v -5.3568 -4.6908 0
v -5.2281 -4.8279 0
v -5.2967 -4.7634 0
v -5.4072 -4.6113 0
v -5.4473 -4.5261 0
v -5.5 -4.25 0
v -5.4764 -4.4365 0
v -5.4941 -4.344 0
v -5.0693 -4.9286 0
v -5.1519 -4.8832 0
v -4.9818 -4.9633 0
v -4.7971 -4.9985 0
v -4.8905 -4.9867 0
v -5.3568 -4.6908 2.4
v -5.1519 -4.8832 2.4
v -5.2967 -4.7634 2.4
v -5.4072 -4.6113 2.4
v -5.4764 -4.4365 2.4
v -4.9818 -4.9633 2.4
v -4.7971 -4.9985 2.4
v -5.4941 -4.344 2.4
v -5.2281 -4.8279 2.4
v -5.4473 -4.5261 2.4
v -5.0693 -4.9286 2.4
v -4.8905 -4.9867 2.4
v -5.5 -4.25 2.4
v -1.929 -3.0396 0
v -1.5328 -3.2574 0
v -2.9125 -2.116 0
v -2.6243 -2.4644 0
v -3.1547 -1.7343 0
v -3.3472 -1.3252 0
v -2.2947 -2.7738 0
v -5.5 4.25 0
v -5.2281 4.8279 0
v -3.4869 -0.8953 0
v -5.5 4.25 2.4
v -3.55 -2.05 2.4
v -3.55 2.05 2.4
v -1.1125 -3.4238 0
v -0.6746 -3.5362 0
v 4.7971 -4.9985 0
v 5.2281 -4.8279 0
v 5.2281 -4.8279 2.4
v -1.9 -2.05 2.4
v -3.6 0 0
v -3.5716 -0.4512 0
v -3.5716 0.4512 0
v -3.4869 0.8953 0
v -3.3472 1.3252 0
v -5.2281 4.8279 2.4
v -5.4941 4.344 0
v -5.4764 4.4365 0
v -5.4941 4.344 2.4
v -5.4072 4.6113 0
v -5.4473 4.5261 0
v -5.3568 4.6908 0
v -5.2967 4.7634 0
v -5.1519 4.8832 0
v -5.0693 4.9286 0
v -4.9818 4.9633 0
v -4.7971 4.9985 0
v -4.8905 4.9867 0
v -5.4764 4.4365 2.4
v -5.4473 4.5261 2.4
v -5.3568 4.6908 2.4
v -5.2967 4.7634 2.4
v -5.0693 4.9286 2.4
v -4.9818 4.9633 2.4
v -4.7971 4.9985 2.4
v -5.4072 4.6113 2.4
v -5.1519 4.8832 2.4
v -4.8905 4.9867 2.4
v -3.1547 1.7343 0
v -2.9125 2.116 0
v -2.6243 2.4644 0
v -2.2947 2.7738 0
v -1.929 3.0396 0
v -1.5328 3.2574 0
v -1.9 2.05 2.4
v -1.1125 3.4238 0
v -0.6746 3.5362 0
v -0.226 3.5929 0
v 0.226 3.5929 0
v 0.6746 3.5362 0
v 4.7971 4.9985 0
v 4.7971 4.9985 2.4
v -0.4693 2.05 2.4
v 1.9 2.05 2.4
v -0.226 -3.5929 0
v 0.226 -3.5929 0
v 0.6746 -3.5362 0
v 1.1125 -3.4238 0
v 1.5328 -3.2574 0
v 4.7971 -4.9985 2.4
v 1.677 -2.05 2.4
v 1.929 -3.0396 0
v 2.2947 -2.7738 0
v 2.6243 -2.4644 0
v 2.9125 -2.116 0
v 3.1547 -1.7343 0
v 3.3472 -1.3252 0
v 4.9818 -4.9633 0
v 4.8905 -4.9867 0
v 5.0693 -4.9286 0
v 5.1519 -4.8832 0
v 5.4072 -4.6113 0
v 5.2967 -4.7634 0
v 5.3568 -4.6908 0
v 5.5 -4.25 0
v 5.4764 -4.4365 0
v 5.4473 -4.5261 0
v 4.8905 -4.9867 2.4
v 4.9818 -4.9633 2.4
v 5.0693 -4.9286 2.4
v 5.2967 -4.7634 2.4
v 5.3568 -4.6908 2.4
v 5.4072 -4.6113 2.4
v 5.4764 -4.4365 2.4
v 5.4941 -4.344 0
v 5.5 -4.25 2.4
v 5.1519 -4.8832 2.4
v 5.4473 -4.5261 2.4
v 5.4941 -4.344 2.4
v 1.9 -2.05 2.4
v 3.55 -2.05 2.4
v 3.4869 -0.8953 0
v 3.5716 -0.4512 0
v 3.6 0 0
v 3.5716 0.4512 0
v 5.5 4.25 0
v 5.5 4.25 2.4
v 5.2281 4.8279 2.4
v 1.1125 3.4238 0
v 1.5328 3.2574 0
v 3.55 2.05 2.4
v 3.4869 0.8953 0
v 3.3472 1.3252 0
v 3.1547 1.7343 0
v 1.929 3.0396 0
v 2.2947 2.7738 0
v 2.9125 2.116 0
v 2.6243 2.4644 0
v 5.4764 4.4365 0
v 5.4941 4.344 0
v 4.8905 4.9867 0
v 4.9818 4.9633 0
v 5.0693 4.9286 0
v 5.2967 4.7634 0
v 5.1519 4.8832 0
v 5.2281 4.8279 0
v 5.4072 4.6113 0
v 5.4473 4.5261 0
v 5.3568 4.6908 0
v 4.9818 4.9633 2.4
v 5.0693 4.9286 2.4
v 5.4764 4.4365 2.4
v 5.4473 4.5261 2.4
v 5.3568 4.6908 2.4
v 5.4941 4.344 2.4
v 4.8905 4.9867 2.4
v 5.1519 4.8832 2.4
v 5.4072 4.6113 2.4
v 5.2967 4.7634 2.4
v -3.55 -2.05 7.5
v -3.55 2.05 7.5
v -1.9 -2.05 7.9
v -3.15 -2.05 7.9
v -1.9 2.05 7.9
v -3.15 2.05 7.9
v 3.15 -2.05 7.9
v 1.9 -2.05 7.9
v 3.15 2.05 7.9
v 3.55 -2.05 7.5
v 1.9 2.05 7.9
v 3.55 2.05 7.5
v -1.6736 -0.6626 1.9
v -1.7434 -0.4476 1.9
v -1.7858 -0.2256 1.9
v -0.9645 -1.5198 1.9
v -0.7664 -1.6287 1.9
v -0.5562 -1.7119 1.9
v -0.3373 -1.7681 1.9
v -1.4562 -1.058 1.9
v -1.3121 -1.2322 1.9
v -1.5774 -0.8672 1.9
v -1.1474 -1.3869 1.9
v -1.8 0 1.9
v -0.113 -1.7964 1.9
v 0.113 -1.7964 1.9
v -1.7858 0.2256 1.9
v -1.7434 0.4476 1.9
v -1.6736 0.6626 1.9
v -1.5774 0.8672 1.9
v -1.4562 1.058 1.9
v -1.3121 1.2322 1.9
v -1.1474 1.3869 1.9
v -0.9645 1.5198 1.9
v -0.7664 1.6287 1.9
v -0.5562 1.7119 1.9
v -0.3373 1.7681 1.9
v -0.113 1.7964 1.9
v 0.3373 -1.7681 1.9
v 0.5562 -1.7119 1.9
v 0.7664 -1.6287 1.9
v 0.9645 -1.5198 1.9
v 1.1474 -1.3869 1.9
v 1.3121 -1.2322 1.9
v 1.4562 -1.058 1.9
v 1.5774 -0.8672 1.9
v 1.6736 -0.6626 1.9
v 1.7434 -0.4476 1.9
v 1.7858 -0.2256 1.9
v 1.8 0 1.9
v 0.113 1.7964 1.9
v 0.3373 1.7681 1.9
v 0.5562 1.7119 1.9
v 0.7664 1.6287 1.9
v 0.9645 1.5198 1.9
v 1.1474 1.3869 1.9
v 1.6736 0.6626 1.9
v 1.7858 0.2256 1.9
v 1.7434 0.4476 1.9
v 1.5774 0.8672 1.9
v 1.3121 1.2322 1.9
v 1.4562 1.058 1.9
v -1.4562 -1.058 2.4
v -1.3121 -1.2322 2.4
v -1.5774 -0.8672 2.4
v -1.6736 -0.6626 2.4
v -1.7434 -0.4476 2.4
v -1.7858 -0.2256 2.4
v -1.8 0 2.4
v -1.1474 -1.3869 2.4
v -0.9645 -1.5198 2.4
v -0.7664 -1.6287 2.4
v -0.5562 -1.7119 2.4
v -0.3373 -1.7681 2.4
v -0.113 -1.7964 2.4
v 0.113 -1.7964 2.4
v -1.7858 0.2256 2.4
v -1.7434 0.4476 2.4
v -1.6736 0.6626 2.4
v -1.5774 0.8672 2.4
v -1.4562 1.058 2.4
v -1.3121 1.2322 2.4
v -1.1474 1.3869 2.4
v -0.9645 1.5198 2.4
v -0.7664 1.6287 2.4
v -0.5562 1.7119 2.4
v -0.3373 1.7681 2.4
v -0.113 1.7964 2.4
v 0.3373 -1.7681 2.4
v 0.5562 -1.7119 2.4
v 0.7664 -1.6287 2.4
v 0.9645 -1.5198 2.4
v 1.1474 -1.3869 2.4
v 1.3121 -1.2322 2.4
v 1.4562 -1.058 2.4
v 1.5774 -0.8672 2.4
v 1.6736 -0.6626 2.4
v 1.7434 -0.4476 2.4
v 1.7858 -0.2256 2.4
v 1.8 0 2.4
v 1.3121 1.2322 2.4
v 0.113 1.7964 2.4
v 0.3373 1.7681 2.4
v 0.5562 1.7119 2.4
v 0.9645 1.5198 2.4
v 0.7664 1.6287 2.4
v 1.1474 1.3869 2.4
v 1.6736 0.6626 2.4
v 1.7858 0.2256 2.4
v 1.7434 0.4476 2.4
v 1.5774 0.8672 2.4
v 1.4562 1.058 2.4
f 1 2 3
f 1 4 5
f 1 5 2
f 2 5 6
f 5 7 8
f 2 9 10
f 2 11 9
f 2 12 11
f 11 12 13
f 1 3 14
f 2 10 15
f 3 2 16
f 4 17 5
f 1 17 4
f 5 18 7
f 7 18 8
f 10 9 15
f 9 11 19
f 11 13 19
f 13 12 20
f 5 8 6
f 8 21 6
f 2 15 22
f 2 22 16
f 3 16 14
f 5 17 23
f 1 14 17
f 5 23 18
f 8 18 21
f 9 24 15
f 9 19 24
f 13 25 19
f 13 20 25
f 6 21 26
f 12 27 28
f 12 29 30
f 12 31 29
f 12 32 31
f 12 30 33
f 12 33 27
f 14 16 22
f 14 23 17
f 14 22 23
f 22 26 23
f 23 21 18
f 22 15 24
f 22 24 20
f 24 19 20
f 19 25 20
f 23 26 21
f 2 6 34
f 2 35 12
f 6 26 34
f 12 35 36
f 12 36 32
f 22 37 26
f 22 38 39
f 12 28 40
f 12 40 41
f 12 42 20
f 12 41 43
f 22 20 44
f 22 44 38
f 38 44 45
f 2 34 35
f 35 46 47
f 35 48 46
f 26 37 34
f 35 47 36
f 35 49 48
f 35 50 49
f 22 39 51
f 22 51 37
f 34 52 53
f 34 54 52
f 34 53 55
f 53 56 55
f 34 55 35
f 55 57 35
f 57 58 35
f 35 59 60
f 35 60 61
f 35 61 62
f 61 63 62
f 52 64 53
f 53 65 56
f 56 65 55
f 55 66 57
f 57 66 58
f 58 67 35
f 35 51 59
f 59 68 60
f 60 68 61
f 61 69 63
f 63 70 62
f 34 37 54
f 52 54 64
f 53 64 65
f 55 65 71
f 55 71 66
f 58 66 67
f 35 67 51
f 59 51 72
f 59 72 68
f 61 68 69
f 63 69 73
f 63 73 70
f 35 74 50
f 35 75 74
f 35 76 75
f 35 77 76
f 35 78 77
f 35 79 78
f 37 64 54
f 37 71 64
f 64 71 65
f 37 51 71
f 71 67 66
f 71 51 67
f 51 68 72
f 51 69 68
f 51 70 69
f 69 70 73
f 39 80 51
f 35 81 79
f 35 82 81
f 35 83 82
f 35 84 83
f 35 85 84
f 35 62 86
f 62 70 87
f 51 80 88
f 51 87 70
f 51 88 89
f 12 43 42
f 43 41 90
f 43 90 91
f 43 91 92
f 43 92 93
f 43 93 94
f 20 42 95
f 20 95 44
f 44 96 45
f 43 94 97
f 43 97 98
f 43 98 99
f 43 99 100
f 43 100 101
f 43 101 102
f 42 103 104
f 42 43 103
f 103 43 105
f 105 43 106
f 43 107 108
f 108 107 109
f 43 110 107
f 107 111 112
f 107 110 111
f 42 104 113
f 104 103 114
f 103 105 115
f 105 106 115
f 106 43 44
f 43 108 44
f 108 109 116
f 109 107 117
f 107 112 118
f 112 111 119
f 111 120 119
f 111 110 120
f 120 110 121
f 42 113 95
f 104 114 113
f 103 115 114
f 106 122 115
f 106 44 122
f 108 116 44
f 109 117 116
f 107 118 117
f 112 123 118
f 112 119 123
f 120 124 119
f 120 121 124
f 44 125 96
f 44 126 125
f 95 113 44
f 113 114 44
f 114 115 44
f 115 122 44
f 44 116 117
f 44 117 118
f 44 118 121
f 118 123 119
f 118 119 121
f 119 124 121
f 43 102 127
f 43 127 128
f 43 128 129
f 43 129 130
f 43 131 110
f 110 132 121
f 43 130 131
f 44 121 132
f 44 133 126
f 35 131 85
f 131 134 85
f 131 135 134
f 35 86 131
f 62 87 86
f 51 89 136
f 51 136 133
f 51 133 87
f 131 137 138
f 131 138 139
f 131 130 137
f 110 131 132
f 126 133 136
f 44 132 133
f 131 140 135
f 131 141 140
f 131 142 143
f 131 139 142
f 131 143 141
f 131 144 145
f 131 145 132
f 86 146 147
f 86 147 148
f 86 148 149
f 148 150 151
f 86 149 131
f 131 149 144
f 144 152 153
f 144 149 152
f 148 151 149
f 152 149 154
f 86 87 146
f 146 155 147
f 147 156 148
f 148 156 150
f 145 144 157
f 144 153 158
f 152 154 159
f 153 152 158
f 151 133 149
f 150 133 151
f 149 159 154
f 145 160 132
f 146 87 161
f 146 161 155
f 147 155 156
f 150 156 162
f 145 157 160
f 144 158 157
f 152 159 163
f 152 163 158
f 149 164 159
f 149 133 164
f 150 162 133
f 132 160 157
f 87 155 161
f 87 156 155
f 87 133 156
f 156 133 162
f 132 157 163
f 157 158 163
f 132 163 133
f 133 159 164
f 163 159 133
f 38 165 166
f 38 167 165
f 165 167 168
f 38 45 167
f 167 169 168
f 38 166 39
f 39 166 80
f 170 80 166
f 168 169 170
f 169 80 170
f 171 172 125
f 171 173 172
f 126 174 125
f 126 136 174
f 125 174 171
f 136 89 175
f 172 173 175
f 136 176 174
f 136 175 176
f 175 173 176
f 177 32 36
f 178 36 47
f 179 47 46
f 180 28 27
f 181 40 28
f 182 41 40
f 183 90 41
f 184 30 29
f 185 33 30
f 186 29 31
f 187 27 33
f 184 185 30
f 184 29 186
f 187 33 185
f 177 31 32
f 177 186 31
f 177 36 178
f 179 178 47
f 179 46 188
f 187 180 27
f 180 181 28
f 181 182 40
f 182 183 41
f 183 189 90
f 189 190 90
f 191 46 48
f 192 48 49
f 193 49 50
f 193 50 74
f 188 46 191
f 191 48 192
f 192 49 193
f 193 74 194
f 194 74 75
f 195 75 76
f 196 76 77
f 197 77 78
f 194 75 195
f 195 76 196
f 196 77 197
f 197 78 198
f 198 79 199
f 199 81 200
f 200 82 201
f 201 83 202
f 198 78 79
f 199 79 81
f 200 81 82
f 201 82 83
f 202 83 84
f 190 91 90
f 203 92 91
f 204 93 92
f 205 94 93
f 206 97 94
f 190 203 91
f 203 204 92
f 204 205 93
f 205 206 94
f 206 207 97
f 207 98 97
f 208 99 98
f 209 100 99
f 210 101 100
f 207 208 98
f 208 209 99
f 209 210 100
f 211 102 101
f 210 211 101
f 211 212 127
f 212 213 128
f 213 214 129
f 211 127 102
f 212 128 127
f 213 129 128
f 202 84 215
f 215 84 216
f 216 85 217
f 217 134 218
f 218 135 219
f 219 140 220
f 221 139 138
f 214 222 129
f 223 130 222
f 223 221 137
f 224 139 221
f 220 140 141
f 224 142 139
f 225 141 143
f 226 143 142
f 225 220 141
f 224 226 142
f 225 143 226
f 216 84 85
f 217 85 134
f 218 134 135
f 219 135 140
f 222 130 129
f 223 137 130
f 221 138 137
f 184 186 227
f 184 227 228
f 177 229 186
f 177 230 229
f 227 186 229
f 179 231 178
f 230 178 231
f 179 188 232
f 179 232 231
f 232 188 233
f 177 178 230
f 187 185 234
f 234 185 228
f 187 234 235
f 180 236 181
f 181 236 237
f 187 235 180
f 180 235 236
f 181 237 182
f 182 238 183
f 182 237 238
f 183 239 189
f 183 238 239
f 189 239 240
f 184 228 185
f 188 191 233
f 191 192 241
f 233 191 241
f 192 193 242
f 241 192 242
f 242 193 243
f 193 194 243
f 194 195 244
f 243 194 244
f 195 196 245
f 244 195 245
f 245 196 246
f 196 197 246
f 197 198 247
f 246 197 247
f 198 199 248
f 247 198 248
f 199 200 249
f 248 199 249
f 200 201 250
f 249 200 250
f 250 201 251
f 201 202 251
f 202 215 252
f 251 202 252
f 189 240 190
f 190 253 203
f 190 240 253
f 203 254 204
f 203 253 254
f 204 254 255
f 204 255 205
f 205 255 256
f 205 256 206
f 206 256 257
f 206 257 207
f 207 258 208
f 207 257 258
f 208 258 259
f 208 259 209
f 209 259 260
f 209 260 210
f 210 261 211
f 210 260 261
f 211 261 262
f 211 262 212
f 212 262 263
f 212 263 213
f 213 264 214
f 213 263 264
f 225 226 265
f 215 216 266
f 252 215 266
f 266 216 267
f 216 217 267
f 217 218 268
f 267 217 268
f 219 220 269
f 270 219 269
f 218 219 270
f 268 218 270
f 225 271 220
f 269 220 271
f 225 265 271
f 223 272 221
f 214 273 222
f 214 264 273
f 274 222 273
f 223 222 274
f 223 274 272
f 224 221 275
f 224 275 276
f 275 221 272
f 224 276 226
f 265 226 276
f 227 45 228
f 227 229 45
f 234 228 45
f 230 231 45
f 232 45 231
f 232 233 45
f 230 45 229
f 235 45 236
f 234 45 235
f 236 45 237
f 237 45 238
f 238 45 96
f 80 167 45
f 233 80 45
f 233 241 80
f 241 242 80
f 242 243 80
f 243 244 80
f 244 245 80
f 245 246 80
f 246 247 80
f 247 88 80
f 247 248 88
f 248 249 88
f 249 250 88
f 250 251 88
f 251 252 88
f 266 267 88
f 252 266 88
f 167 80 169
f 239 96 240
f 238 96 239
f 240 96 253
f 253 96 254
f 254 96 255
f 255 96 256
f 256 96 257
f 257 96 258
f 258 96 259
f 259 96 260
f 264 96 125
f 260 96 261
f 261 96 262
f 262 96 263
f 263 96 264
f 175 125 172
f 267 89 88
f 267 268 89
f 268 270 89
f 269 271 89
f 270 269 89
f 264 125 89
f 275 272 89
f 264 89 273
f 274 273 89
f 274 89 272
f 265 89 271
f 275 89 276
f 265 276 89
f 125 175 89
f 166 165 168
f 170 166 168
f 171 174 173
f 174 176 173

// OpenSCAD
$fn = 50;

difference() {
	union() {
		translate(v = [0, 0, 0]) {
			rotate(a = [0, 0, 0]) {
				difference() {
					union() {
						hull() {
							translate(v = [-4.75, 4.25, 0]) {
								cylinder(h = 2.4, r = 0.75);
							}
							translate(v = [4.75, 4.25, 0]) {
								cylinder(h = 2.4, r = 0.75);
							}
							translate(v = [-4.75, -4.25, 0]) {
								cylinder(h = 2.4, r = 0.75);
							}
							translate(v = [4.75, -4.25, 0]) {
								cylinder(h = 2.4, r = 0.75);
							}
						}
						translate(v = [-3.55, -2.05, 2.35]) {
							cube(size = [7.1, 4.1, 5.55]);
						}
					}
					union() {
						translate(v = [0, 0, 0]) {
							rotate(a = [0, 180, 0]) {
								difference() {
									union() {
										translate(v = [0, 0, -20.0]) {
											cylinder(h = 20.0, r = 1.5);
										}
										translate(v = [0, 0, -1.9]) {
											cylinder(h = 1.9, r1 = 1.8, r2 = 3.6);
										}
										cylinder(h = 250, r = 3.6);
										translate(v = [0, 0, -20.0]) {
											cylinder(h = 20.0, r = 1.8);
										}
										translate(v = [0, 0, -20.0]) {
											cylinder(h = 20.0, r = 1.5);
										}
									}
									union();
								}
							}
						}
						translate(v = [-1.9, -2.55, 2.4]) {
							cube(size = [3.8, 5.1, 5.6]);
						}
						translate(v = [0, 2.15, 0]) {
							rotate(a = [90, 0, 0]) {
								linear_extrude(height = 4.3) {
									polygon(points = [[-3.75, 7.300000000000001], [-2.9499999999999997, 8.1], [-3.75, 8.1]]);
								}
							}
						}
						translate(v = [0, 2.15, 0]) {
							rotate(a = [90, 0, 0]) {
								linear_extrude(height = 4.3) {
									polygon(points = [[3.75, 7.300000000000001], [2.9499999999999997, 8.1], [3.75, 8.1]]);
								}
							}
						}
					}
				}
			}
		}
	}
	union();
}
